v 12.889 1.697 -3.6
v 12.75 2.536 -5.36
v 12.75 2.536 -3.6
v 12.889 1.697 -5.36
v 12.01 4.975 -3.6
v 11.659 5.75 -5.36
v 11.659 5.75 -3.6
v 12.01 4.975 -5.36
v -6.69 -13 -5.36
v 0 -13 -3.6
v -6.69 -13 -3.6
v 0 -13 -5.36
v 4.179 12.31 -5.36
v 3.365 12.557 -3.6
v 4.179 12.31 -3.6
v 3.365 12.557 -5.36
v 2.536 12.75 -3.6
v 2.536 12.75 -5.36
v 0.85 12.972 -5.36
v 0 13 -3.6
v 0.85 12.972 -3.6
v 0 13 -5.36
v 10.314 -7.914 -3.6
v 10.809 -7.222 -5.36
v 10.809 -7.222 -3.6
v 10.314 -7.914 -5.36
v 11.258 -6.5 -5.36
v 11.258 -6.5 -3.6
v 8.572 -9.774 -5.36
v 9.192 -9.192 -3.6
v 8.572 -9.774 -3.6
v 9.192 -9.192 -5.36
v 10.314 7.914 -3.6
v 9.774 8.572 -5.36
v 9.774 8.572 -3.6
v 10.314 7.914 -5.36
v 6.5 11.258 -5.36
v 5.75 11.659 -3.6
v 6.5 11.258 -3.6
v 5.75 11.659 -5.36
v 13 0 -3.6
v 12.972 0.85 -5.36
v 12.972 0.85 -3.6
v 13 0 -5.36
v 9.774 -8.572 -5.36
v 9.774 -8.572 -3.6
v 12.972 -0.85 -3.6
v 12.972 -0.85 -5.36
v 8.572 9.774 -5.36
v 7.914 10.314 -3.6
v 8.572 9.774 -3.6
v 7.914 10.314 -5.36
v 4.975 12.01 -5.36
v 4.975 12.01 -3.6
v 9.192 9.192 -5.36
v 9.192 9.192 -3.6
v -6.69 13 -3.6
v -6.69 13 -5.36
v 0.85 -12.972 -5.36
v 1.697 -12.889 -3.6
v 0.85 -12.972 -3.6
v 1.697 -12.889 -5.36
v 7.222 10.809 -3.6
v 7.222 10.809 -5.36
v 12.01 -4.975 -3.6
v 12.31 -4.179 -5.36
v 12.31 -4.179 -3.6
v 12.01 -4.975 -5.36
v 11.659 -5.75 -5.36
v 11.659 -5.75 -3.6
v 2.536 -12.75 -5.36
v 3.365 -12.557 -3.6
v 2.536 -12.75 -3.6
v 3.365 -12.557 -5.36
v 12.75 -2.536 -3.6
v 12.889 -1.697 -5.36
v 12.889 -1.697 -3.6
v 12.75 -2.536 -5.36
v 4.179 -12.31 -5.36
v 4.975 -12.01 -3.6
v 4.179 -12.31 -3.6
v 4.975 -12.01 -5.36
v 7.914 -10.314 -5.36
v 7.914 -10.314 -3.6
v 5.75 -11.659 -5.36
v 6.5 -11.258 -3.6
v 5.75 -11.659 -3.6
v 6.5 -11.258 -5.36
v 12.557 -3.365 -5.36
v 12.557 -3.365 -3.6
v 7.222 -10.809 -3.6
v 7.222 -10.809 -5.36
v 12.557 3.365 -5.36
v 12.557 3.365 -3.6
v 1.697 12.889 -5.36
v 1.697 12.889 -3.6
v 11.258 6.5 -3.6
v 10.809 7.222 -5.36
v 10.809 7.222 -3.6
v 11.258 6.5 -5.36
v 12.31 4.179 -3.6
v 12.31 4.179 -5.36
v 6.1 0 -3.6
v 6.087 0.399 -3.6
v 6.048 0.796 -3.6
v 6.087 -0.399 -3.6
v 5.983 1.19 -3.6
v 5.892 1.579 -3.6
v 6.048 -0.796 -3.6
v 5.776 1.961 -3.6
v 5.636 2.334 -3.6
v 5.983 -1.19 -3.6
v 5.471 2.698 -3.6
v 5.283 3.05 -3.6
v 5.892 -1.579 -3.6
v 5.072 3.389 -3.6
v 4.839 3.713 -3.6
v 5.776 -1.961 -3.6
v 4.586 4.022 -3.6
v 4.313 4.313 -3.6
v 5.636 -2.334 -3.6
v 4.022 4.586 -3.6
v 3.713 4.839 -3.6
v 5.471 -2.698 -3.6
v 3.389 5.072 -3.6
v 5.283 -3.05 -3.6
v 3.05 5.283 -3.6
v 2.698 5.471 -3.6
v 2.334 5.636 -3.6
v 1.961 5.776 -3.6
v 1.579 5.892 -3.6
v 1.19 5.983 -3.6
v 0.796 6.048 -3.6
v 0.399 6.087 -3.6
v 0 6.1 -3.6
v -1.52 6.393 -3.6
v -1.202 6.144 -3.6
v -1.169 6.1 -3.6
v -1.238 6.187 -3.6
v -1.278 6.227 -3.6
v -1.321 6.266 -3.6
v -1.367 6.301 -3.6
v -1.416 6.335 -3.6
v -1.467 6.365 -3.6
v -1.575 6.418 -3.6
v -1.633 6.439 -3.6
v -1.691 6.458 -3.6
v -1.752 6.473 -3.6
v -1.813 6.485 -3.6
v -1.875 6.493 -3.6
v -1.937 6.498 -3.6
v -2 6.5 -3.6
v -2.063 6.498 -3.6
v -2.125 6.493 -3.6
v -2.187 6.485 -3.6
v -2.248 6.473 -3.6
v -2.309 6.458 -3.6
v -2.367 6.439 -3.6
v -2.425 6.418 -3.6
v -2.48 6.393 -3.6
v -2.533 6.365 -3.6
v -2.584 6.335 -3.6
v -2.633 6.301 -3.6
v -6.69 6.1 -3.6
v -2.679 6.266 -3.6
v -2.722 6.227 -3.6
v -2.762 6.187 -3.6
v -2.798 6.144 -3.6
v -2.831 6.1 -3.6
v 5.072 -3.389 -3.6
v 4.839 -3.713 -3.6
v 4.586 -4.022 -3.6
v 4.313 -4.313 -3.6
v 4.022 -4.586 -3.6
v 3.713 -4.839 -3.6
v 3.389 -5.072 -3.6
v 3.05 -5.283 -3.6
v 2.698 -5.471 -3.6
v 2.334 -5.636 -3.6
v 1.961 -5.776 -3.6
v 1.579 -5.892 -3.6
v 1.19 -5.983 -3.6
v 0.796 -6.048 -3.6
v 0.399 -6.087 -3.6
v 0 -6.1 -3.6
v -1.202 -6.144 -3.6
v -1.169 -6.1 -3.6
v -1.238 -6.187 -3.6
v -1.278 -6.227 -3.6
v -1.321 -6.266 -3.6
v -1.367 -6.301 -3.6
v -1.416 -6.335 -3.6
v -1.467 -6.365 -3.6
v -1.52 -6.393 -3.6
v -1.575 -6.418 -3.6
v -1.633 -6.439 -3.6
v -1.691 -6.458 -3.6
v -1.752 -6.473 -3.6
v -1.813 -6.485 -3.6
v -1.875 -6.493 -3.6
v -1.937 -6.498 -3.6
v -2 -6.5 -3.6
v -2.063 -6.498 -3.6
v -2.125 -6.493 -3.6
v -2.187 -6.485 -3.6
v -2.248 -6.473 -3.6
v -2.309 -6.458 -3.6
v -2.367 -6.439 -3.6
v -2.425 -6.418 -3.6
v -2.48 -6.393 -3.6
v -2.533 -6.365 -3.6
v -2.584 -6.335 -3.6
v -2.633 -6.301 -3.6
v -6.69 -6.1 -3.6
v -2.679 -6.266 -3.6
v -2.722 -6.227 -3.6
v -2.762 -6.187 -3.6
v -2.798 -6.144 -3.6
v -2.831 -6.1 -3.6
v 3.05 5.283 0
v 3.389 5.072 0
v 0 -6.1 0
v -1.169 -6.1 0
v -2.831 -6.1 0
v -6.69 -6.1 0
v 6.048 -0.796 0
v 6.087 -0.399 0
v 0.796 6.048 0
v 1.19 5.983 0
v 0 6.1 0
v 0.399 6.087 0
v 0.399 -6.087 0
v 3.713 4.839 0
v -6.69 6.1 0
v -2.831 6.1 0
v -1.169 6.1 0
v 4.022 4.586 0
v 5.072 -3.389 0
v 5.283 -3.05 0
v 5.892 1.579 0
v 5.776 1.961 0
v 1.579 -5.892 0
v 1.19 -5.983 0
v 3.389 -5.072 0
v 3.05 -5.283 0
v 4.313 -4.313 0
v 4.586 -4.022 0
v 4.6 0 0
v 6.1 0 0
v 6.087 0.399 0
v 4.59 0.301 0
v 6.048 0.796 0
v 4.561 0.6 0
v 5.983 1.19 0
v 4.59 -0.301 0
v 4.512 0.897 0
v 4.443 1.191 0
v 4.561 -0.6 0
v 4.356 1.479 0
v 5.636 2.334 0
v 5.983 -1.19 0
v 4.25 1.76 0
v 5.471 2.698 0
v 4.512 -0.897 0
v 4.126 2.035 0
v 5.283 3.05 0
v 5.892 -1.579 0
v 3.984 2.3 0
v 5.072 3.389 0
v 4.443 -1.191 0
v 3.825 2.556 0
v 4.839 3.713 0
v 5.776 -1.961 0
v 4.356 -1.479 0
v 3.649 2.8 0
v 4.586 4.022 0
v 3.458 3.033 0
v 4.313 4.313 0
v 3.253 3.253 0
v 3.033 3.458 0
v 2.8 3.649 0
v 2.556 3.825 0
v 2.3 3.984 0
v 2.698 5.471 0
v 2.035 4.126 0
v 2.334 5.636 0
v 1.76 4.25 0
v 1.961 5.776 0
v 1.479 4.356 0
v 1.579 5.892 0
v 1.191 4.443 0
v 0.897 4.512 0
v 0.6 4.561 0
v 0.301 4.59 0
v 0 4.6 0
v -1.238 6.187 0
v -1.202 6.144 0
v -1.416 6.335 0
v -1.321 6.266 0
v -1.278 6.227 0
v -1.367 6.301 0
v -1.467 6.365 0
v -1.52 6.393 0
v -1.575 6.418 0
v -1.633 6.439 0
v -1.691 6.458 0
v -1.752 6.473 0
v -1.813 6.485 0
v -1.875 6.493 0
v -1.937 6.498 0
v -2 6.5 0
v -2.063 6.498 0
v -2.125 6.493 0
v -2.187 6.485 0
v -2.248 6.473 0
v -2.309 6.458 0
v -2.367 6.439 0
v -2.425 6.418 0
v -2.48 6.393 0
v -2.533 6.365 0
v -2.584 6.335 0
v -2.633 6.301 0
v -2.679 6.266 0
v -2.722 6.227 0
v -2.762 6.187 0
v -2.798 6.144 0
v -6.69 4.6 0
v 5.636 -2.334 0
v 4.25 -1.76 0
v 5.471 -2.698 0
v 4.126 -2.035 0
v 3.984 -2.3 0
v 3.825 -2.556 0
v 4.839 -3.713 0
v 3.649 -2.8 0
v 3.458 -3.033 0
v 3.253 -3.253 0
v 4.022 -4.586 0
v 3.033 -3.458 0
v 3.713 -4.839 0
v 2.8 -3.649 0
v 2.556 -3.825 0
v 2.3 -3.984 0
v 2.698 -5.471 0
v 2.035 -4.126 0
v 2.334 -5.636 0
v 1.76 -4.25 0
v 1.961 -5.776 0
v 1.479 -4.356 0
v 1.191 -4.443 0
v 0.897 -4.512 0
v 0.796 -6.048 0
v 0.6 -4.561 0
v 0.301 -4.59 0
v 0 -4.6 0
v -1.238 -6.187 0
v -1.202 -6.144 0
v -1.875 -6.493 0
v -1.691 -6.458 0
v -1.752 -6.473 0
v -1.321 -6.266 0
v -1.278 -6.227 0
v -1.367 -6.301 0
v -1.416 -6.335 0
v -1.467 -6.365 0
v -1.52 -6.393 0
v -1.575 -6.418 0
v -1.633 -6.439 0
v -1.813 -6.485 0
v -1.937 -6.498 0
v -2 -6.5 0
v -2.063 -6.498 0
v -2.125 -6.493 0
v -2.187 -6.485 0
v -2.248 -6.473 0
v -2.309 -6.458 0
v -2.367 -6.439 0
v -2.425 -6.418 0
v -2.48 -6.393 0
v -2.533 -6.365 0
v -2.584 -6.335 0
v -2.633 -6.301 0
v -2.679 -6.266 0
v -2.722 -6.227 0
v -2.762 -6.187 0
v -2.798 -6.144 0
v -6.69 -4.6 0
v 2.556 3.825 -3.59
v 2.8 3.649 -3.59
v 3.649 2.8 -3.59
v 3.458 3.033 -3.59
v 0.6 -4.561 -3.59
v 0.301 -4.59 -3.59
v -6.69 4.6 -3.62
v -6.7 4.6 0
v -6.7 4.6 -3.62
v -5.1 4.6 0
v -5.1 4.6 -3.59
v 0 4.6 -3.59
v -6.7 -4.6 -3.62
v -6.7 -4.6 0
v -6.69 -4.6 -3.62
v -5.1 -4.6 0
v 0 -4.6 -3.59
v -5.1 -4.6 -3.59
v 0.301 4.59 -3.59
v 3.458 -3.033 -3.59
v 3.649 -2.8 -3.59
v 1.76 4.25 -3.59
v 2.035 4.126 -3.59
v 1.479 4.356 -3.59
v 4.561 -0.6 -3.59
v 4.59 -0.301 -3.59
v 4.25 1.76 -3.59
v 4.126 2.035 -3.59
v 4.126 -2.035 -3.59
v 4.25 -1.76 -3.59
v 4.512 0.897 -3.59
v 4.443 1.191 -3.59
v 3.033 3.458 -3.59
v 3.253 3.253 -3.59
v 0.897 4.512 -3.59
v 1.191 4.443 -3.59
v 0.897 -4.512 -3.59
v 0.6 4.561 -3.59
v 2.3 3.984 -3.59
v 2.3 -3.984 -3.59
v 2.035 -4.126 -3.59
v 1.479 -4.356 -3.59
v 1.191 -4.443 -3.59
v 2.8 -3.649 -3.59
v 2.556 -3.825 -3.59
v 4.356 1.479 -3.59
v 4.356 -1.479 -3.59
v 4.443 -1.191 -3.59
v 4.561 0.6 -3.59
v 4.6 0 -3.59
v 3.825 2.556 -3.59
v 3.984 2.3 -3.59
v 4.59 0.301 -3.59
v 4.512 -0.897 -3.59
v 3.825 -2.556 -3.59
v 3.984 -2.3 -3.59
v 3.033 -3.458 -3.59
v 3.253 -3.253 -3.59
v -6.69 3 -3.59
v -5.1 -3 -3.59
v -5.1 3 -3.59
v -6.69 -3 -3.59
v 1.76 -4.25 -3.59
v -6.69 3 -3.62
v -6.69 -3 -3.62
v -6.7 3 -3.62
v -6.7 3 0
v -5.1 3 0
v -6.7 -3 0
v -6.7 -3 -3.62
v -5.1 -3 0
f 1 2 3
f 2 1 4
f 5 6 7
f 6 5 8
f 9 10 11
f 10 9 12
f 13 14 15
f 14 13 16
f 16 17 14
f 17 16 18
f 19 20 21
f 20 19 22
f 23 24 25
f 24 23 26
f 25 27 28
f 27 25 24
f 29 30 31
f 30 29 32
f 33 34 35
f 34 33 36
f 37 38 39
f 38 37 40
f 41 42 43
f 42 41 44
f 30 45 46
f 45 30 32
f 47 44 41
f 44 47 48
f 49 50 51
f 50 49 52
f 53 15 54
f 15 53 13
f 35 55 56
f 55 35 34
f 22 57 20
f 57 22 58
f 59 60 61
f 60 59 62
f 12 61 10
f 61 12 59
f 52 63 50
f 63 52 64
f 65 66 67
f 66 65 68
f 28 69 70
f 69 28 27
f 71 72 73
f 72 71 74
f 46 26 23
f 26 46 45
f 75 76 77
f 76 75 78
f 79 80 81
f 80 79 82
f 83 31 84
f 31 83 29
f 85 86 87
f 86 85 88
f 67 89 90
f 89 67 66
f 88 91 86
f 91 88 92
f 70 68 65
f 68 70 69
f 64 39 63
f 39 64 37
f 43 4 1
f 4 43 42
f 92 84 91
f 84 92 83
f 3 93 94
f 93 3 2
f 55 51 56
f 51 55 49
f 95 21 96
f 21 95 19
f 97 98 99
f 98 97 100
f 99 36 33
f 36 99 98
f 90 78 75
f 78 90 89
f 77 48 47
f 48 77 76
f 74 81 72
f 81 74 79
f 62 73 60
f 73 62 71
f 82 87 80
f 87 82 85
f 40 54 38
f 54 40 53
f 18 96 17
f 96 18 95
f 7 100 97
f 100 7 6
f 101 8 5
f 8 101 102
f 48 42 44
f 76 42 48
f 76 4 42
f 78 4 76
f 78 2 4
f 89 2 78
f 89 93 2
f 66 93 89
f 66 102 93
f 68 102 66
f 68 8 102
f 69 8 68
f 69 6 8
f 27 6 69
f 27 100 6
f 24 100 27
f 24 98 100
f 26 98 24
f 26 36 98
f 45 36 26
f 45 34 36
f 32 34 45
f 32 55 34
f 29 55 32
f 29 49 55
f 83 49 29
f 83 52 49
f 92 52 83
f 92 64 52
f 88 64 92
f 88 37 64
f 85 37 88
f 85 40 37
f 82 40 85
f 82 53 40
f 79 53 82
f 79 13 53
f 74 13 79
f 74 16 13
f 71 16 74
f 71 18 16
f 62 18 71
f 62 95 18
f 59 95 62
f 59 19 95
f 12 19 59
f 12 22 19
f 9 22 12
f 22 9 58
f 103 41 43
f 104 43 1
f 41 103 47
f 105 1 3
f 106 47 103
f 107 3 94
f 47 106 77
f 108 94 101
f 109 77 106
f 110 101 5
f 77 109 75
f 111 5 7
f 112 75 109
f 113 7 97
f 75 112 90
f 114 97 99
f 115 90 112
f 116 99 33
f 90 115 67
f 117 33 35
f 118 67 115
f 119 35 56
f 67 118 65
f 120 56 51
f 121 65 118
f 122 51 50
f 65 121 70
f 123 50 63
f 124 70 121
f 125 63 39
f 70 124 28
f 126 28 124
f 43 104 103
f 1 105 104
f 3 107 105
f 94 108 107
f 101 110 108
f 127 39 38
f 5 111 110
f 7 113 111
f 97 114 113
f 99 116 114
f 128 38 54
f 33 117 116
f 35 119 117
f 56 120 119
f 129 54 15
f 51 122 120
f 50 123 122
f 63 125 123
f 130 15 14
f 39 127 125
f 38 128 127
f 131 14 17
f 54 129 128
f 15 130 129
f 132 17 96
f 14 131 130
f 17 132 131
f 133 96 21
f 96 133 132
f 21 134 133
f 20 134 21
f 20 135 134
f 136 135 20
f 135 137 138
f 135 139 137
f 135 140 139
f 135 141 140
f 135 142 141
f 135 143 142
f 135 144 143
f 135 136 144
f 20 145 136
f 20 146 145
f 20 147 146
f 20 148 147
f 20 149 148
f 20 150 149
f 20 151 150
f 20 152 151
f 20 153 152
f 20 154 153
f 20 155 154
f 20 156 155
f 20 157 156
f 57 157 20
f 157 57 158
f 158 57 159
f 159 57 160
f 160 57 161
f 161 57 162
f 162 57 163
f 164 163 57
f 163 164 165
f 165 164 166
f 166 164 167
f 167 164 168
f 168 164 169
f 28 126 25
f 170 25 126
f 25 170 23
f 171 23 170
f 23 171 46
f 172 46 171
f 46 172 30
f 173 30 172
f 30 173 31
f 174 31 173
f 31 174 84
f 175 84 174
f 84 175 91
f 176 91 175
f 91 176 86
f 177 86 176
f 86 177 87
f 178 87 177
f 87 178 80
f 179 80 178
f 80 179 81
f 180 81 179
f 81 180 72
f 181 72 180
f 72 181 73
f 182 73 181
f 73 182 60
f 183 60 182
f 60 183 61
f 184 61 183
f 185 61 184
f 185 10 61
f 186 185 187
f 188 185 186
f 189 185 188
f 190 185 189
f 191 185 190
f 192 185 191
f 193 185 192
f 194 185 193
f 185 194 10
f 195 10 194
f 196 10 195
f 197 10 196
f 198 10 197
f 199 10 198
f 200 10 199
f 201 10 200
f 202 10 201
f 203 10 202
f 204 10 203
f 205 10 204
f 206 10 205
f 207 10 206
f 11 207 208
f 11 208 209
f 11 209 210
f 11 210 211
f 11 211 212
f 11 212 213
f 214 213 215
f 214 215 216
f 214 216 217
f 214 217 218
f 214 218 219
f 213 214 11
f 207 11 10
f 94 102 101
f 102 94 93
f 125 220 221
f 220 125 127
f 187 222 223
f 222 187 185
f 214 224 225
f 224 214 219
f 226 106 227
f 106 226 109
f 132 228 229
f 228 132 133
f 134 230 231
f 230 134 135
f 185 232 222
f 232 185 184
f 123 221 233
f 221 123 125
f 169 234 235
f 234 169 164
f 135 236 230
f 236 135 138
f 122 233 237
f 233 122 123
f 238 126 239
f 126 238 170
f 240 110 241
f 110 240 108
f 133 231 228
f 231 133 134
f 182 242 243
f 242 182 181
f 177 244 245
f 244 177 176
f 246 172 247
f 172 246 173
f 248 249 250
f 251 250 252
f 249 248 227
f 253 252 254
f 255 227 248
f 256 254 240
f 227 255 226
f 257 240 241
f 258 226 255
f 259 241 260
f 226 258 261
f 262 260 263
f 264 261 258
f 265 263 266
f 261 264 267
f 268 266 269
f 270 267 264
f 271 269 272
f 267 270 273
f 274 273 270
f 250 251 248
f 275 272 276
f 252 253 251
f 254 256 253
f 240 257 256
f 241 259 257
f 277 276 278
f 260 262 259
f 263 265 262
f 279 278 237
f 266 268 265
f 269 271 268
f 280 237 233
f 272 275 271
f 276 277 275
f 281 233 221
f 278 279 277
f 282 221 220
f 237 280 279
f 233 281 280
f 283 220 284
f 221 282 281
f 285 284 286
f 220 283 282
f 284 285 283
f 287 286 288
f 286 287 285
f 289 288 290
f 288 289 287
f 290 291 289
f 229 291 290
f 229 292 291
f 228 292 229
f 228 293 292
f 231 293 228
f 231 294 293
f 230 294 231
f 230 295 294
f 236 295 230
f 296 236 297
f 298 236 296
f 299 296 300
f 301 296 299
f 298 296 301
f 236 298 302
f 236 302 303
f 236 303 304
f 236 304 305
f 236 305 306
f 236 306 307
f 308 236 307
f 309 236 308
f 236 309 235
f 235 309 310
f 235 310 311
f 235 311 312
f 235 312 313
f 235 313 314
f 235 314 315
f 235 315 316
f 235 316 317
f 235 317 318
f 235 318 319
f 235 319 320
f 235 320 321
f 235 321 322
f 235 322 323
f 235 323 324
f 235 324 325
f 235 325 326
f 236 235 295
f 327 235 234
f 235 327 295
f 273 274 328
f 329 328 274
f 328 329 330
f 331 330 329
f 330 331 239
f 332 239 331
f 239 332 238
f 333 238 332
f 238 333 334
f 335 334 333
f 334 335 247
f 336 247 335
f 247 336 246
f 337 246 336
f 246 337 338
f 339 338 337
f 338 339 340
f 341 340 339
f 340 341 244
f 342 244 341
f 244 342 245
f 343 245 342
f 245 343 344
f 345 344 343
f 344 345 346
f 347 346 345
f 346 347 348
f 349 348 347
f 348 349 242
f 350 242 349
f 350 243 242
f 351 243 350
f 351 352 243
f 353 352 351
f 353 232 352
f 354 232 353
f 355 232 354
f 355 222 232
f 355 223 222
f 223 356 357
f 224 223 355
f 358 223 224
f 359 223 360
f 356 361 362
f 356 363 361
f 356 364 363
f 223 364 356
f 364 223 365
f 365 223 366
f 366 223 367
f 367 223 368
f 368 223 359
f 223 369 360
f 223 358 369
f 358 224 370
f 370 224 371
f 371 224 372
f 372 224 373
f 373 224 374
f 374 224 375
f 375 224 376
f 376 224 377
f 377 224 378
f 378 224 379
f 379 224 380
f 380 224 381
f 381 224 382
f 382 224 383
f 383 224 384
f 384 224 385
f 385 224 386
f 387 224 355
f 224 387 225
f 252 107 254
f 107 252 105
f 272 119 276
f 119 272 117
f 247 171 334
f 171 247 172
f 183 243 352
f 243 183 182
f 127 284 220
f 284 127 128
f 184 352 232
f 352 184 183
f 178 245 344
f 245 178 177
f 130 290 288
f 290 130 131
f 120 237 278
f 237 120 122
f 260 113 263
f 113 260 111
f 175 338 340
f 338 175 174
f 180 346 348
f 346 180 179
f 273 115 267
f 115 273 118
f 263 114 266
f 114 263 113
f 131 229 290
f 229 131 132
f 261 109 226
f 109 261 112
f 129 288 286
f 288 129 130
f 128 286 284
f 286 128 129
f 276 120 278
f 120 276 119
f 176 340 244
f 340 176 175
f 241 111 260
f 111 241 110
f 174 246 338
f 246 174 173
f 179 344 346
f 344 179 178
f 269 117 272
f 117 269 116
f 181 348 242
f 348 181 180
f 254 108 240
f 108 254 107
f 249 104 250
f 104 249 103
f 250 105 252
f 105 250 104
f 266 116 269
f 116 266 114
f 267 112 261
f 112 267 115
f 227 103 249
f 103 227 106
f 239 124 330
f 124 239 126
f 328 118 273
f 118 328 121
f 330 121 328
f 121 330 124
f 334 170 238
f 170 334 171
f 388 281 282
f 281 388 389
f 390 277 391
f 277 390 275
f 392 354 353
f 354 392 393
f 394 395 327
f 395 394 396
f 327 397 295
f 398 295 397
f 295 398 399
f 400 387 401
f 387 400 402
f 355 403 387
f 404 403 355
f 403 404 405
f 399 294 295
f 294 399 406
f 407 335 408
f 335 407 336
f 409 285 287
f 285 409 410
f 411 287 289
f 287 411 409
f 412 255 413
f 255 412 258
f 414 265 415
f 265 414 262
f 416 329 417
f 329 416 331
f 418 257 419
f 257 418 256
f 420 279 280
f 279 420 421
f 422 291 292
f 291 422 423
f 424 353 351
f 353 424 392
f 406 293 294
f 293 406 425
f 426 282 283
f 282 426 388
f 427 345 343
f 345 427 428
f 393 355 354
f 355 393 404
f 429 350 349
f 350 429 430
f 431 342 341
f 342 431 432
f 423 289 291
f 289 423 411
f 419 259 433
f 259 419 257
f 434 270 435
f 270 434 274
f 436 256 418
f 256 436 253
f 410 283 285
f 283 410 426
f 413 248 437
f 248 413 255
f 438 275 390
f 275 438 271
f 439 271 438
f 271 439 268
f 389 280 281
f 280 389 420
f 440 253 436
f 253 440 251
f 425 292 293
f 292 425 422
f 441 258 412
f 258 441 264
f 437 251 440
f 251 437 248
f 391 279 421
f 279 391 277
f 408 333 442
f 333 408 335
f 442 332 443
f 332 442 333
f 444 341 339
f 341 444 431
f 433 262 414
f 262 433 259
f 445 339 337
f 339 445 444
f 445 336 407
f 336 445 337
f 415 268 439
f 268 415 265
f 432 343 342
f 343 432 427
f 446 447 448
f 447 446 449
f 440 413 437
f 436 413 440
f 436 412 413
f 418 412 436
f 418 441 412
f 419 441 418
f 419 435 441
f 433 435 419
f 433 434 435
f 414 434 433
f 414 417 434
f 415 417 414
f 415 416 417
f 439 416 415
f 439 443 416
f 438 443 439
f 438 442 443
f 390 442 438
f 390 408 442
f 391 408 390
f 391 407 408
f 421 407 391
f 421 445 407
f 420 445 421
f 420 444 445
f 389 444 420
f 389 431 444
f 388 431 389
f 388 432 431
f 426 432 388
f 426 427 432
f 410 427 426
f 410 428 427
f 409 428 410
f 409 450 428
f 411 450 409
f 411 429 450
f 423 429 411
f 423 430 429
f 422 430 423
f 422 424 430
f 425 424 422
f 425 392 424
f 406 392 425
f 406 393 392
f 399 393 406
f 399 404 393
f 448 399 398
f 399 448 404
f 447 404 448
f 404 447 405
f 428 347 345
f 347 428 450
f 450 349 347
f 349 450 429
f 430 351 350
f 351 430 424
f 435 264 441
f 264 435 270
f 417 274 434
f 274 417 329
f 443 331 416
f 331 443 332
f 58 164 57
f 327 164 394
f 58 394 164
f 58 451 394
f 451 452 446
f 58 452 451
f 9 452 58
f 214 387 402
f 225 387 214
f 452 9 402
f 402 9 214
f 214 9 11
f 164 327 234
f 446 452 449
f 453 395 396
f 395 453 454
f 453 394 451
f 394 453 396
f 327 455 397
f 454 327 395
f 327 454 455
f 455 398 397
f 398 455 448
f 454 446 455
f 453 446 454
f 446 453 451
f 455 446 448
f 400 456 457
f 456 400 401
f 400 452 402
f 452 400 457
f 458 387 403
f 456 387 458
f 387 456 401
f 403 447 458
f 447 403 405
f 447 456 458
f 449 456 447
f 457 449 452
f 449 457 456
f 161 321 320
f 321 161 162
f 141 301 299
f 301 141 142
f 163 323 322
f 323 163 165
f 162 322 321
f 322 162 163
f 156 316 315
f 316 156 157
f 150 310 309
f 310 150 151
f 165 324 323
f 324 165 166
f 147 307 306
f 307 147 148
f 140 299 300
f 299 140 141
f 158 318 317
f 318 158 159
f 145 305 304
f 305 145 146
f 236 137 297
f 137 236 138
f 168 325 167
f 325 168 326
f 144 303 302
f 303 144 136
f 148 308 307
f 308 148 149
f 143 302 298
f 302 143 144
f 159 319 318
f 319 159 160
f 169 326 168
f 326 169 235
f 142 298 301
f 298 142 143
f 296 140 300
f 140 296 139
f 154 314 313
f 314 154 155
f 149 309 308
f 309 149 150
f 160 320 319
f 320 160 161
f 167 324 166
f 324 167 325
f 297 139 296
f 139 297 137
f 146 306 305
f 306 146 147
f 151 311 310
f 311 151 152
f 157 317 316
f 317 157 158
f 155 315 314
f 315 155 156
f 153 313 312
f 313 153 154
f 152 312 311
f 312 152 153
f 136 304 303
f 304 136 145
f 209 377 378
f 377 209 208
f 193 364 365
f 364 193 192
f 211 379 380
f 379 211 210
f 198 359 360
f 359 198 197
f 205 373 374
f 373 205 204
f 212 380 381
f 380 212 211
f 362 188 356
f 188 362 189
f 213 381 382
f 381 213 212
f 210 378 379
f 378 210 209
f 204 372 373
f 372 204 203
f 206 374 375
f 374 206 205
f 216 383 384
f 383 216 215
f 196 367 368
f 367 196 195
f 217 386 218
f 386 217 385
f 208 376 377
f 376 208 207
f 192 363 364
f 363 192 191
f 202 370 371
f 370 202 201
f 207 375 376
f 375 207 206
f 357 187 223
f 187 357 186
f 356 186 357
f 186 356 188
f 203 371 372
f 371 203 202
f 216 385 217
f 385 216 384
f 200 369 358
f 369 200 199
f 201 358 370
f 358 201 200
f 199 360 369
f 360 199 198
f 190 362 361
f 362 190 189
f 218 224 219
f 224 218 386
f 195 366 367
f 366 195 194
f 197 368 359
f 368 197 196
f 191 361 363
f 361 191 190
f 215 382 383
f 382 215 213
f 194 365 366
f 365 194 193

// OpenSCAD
//  Characters    Behavior
//     //            ignore, comment
//     $fa           minimum angle
//     *             disable
//     !             show only
//     #             highlight / debug
//     %             transparent / background
// http://www.openscad.org/cheatsheet/index.html

// Globals

$fn = 8 * 12;
eps = 0.01;

notch_diameter = 13;
notch_radius   = notch_diameter / 2;
notch_height   = 3.6;
notch_length   = 30;

// Functions

// Modules

module notch(h, d, l)
{
    hull()
    {
        cylinder(h=h, d=d);
        translate([l, 0, 0])
            cylinder(h=h, d=d);
    }
}

// Objects

rotate([0, 180, 0])
union()
{
    difference()
    {
        union()
        {
            translate([0, 0, notch_height])
            notch(h=1.76, d=2*notch_diameter, l=notch_length-notch_radius);

            color("orange")
            notch(notch_height, notch_diameter-0.8, notch_length);
        }

        color("red")
        translate([0, 0, -eps])
        notch(notch_height, 8+1.2, notch_length);

        color("green")
        translate([notch_length-1.81,0, 0])
        cube([notch_length+notch_diameter, 2*(notch_diameter+eps), 12], center=true);
    }

    color("blue")
    {
        // Retaining posts
        translate([notch_radius-0.6, 0, notch_height/2+eps])
        {
            translate([0, notch_radius-2.7, 0])
            cube([1.6, 1.6, notch_height+2*eps], center=true);

            translate([0, -(notch_radius-2.7), 0])
            cube([1.6, 1.6, notch_height+2*eps], center=true);
        }

        // Snuggle nubbins
        translate([2, 0, 0])
        scale([1.2, 1, 1])
        {
            translate([0, notch_radius-0.8, 0])
            cylinder(h=notch_height+2*eps, d=1.6);

            translate([0, -(notch_radius-0.8), 0])
            cylinder(h=notch_height+2*eps, d=1.6);
        }
    }
}
